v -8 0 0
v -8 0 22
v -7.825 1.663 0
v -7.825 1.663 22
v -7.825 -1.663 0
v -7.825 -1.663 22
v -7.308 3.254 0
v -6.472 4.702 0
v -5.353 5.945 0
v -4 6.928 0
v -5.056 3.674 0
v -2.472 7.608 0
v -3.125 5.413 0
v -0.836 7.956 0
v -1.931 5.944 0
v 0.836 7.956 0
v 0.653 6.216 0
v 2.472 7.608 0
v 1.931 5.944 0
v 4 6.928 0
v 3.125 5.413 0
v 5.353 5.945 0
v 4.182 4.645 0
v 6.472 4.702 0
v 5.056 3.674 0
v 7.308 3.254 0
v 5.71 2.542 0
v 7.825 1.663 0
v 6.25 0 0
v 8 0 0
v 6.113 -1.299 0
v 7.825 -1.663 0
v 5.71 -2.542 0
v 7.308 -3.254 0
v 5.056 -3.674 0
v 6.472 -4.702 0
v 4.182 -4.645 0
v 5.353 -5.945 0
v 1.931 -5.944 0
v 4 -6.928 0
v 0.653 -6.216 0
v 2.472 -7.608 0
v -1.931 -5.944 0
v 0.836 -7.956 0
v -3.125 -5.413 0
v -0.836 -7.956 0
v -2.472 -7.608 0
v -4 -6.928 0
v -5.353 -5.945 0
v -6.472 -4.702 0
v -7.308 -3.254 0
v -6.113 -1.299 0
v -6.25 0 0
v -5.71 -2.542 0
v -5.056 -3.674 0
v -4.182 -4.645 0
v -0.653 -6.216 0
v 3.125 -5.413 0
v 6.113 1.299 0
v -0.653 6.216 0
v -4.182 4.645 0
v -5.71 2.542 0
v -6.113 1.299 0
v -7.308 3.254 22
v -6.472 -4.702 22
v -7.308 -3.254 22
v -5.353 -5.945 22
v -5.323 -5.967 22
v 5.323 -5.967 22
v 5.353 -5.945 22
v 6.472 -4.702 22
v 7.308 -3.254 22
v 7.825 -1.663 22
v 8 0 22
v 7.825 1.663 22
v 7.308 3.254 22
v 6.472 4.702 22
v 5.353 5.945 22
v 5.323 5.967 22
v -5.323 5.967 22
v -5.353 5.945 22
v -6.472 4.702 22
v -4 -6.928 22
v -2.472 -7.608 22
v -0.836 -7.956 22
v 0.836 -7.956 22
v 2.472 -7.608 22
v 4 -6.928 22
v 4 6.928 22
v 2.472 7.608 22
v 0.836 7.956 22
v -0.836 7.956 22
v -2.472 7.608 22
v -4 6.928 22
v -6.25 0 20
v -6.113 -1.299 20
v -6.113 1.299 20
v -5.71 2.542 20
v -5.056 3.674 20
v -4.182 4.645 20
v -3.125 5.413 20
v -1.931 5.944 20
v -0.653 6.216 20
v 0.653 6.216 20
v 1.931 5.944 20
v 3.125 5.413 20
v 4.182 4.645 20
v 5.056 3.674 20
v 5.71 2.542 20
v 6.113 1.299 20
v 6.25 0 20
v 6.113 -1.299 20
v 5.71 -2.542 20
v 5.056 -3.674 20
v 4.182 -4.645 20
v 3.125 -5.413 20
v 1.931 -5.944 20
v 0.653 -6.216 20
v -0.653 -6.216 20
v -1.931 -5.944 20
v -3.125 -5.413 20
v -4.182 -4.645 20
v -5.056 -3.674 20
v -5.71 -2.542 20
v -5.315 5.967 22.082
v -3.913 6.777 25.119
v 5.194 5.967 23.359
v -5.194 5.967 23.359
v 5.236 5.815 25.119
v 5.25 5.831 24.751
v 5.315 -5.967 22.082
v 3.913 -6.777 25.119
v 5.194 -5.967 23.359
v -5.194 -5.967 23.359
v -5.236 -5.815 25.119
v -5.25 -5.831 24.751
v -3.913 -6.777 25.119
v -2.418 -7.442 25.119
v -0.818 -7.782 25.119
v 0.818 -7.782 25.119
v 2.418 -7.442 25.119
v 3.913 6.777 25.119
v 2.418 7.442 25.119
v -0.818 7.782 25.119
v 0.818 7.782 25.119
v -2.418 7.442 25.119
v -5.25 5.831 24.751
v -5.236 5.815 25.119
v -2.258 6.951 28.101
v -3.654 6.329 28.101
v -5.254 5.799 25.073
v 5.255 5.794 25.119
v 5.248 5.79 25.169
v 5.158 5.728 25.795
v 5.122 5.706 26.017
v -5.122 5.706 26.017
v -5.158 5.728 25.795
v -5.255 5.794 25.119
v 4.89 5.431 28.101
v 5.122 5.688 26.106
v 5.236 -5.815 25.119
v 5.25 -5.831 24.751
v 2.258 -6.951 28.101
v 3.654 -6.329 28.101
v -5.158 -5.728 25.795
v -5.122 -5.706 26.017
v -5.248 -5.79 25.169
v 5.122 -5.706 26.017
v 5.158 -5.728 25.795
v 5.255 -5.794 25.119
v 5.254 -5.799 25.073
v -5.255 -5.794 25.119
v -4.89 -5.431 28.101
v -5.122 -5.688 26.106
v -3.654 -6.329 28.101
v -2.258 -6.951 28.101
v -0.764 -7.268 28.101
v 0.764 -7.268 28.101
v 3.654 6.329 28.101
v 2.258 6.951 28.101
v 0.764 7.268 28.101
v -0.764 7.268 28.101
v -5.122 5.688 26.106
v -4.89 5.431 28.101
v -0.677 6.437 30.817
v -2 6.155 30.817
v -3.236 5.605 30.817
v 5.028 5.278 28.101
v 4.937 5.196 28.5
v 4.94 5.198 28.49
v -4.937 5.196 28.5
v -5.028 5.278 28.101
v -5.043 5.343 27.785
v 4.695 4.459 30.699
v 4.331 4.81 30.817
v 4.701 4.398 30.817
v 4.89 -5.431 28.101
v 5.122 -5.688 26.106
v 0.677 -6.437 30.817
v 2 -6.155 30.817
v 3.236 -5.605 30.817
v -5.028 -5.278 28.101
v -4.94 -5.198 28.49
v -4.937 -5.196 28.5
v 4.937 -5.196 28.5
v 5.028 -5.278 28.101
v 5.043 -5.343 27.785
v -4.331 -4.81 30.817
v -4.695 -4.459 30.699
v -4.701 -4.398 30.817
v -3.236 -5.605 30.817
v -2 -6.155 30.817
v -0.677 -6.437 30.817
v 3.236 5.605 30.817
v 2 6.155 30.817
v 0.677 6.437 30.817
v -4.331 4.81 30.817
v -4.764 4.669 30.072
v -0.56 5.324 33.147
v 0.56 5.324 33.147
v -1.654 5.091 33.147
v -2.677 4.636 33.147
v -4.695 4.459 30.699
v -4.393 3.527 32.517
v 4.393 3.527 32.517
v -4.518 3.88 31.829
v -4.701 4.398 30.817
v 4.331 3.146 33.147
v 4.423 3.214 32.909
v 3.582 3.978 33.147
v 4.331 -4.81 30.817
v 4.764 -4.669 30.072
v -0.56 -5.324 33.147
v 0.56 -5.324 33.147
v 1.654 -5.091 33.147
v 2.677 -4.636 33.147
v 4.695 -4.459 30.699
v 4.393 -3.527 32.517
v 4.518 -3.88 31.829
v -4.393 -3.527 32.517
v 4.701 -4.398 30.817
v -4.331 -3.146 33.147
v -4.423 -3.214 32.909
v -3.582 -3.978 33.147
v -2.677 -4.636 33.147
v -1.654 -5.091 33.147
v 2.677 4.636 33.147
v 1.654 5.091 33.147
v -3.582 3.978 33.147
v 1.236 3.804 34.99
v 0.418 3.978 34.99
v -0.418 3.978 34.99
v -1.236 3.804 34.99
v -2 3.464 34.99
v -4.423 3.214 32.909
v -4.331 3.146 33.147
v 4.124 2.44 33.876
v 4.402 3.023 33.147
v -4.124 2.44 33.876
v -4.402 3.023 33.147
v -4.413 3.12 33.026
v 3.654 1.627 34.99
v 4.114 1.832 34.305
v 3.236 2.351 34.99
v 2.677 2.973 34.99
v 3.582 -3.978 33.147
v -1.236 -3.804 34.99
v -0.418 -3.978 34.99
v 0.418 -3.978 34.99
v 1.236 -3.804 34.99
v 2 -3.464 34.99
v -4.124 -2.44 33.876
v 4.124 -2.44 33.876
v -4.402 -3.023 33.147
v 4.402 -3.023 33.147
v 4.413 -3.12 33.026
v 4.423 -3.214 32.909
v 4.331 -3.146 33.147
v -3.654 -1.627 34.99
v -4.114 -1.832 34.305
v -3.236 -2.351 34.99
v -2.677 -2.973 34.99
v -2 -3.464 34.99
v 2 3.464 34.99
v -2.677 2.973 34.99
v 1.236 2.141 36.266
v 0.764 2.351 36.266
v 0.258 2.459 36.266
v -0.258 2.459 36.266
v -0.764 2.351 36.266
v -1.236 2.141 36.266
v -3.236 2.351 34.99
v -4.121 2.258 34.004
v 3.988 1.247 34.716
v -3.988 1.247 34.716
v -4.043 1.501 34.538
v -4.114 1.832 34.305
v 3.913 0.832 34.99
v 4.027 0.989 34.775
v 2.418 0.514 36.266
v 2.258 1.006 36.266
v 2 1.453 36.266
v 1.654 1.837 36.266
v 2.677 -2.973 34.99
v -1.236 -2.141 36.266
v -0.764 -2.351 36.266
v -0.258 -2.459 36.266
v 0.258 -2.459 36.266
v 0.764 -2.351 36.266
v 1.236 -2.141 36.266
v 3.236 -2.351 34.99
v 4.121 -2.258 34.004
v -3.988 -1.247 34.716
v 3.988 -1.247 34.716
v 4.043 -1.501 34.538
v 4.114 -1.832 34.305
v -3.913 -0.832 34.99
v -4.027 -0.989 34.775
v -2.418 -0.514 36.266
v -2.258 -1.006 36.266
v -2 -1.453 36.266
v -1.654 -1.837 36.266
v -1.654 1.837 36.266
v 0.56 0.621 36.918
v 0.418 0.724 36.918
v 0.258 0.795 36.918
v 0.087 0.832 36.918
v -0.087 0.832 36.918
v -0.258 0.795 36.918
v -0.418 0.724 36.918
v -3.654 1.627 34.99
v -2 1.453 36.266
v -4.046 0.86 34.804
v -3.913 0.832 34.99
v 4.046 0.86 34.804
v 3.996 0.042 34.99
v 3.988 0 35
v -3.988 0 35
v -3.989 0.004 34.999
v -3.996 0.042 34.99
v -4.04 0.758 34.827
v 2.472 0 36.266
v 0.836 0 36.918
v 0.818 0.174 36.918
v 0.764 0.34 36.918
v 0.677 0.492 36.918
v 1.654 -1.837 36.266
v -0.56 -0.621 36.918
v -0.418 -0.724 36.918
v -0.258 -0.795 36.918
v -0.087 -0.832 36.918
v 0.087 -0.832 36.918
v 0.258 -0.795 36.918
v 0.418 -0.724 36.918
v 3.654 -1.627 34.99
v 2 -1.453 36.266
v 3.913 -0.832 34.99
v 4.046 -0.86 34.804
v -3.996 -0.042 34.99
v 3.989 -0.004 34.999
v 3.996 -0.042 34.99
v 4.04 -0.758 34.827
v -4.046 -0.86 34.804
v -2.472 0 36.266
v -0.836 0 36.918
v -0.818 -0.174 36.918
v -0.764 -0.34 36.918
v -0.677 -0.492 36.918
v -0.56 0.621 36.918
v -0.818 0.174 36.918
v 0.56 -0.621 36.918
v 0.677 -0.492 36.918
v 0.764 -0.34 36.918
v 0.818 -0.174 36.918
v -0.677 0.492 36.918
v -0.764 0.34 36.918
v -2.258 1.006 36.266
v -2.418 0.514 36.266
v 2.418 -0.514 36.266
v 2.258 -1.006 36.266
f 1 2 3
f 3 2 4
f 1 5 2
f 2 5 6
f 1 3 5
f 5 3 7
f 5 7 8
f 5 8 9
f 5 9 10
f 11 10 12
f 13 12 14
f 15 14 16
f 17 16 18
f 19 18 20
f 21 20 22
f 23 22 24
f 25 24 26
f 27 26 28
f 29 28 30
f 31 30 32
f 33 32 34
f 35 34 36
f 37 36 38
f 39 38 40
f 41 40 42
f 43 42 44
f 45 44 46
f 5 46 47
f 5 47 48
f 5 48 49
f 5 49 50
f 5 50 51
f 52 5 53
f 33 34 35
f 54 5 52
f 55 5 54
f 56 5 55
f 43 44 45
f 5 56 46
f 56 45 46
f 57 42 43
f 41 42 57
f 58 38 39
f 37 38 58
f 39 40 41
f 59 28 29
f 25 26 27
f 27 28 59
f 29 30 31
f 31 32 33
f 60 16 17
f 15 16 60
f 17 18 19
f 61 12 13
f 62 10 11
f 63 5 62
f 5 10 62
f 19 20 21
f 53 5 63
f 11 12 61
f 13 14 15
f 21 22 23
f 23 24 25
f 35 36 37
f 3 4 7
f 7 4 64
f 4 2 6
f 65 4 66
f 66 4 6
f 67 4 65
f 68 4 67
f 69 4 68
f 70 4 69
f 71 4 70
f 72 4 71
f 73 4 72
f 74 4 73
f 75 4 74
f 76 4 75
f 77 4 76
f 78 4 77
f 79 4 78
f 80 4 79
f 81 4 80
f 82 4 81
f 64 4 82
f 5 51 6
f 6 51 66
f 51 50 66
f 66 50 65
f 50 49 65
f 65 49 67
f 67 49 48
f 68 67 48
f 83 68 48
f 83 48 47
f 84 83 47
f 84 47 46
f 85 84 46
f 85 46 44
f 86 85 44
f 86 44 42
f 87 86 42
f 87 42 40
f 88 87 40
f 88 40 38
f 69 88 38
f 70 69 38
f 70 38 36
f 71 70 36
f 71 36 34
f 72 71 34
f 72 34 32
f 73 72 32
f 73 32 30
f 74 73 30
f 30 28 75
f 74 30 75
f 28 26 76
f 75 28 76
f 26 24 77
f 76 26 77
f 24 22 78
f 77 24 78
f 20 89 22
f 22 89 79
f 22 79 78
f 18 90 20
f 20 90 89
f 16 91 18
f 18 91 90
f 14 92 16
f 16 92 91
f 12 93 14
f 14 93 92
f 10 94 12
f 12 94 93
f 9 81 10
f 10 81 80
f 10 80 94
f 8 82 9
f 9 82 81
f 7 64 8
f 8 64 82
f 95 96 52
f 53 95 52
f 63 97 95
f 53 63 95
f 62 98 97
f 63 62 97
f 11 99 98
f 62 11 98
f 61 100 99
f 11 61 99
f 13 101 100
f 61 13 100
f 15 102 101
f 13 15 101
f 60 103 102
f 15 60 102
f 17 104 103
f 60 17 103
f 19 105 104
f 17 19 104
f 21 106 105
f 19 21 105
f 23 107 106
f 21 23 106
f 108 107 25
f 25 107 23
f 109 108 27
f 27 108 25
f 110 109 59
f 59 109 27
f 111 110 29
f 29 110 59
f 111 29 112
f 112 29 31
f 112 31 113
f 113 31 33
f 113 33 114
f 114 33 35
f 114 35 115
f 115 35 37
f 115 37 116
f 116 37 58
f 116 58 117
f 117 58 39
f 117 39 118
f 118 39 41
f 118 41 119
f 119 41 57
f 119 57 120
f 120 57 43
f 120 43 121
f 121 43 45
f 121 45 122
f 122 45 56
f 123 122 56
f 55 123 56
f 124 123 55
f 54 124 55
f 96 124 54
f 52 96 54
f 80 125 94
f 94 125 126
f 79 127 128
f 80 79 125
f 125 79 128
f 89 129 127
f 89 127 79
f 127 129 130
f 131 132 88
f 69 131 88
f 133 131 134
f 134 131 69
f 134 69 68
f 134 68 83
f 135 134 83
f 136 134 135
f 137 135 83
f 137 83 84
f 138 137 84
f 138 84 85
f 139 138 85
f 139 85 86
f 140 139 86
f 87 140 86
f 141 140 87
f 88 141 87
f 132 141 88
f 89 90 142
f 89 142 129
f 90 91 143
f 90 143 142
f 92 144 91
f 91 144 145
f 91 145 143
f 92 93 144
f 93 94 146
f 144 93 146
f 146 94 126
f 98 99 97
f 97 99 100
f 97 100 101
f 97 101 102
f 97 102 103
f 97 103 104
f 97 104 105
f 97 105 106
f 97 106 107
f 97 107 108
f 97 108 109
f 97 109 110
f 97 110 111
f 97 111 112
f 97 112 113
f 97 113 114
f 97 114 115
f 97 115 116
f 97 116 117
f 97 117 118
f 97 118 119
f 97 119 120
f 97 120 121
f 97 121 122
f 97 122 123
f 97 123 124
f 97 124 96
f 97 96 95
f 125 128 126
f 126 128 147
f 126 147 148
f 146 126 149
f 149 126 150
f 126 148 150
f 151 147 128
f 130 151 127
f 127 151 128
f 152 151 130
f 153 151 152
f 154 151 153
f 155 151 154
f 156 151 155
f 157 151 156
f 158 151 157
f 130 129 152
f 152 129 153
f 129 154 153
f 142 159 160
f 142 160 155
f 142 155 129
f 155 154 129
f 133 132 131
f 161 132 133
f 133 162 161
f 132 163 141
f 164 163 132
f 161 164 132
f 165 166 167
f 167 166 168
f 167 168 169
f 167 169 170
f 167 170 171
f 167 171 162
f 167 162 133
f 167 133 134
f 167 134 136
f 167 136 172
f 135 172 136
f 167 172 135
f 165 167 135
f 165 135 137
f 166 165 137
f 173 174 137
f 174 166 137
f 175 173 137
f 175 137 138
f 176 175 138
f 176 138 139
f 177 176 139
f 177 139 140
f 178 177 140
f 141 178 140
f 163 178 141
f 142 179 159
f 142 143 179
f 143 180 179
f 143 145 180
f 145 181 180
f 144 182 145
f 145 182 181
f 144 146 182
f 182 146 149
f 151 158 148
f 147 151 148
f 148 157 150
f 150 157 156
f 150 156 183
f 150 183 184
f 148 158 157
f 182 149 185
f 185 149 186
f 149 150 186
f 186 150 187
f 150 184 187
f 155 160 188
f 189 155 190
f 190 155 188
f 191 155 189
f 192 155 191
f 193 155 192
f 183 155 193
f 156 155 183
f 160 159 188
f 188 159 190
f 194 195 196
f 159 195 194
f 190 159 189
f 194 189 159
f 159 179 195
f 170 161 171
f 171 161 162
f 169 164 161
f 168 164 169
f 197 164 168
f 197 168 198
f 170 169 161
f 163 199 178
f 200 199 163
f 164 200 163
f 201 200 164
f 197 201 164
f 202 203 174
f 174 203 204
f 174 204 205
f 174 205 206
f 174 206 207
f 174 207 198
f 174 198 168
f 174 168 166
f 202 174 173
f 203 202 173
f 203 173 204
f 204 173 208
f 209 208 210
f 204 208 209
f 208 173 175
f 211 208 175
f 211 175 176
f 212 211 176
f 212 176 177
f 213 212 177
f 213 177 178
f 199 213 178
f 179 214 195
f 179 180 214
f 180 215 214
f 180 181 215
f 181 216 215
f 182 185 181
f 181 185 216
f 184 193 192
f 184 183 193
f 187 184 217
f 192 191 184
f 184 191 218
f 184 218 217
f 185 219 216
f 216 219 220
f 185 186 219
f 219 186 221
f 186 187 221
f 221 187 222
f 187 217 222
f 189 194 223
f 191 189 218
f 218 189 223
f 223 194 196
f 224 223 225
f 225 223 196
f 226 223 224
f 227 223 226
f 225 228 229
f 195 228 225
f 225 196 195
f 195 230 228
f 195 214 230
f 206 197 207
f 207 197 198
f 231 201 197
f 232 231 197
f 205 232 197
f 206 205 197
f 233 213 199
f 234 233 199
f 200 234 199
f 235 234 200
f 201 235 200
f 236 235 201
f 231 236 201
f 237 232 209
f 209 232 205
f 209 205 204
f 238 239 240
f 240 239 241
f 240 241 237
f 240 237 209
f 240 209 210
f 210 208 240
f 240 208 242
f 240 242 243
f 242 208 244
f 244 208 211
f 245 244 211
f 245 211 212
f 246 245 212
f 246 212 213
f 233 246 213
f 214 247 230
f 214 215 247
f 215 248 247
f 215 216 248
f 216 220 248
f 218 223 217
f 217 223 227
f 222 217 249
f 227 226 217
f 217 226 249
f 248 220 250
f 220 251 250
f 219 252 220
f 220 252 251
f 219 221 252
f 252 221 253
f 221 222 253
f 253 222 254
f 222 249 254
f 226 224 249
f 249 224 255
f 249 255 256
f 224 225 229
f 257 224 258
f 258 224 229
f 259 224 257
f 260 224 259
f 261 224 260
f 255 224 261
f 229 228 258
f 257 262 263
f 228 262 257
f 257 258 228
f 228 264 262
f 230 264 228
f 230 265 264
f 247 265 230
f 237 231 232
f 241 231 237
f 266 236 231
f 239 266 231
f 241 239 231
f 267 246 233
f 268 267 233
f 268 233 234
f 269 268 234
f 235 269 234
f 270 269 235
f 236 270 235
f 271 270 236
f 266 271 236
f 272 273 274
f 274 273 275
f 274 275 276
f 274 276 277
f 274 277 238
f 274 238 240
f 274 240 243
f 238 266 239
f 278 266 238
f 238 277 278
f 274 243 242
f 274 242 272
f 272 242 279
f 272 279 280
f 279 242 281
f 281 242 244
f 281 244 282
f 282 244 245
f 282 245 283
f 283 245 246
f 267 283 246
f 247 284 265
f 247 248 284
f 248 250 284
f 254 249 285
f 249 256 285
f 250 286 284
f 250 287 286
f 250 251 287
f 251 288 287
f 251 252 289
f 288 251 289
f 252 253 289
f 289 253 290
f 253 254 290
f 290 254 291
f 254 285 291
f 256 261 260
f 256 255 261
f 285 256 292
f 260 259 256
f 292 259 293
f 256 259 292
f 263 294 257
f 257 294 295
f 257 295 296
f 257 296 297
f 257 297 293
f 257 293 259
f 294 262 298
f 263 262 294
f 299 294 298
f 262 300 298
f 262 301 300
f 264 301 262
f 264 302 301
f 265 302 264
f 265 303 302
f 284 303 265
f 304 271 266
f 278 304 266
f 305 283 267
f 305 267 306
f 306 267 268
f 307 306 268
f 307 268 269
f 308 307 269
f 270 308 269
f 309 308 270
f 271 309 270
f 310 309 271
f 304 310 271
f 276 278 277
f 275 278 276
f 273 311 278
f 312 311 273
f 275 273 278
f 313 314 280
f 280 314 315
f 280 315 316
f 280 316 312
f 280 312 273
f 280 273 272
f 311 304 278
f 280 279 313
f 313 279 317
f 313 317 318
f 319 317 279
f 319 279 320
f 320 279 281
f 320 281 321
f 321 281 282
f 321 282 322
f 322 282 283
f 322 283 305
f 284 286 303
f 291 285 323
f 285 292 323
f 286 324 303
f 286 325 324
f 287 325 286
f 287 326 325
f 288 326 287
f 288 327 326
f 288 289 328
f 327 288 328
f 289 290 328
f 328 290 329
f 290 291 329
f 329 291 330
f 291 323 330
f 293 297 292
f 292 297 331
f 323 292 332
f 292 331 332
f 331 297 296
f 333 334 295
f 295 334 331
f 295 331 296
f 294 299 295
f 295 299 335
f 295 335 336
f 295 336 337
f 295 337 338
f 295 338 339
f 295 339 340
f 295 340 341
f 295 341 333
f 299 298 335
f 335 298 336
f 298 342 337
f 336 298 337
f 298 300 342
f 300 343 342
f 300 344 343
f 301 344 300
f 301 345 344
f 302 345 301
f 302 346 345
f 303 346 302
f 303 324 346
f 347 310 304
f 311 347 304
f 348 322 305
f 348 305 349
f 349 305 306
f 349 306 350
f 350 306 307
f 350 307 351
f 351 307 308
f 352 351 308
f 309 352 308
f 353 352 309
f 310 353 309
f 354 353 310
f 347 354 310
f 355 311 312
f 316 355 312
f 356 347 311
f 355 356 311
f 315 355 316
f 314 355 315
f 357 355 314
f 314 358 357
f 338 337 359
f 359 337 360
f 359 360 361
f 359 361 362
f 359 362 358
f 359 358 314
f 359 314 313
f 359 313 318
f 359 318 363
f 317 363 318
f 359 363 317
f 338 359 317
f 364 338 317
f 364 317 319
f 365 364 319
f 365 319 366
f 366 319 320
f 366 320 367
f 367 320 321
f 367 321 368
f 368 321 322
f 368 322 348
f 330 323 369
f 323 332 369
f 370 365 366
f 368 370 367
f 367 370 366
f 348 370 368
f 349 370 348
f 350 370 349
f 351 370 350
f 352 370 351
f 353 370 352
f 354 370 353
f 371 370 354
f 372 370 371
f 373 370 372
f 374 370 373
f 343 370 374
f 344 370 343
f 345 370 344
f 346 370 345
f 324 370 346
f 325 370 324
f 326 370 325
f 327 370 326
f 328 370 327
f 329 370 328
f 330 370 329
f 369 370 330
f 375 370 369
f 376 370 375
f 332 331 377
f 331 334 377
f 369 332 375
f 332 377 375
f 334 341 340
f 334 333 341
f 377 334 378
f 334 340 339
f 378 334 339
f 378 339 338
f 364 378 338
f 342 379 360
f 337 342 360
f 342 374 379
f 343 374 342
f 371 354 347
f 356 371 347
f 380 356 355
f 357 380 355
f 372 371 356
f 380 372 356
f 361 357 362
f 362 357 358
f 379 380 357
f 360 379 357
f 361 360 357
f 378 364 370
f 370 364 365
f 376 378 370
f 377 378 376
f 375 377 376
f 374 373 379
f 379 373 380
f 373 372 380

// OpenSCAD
// Diameter of the Z-axis rod, mm
rod_dia=12;
rod_r=rod_dia / 2;
tolerance = .25; // Amount of mechanical tolerance in the part
smooth_r = 1; // the radius at which everything is smoothed.

// Outside separation of the two rods
rod_sep=60;
rod_pos=(rod_sep - rod_dia) / 2;
rod_h=60;

$fs=.01;

wall_size=2;
sit_on=20;
bridge_fatness=5;
top_fatness=2;

loop_height=15;
sphere_r = rod_r + wall_size;

module centered_cube(x, y, z) {
	translate([-x/2, -y/2, -z])
	cube([x, y, z]);

}
module ring(rod_r, wall_size, loop_height) {
	sphere_r = rod_r + wall_size;
	difference() {
		scale([1, 1, loop_height / sphere_r])
		sphere(sphere_r);
		scale([1, 1, (loop_height - wall_size) / (sphere_r - wall_size)])
		rotate([0, 90, 0])
		linear_extrude(rod_sep * 2, center=true)
		circle(sphere_r - wall_size);
		centered_cube(2*sphere_r, 2*sphere_r, sphere_r);
	}

};

difference() {
	union() {
		cylinder(sit_on + top_fatness, 
			rod_r + wall_size,
			rod_r + wall_size);
		translate([0, 0, sit_on + top_fatness])
		ring(rod_r, wall_size, loop_height);
	}
	translate([0, 0, -sit_on])
	cylinder(sit_on * 2, r1=rod_r + tolerance,r2=rod_r + tolerance);
	centered_cube(4*rod_r, 4*rod_r, rod_r);
}
